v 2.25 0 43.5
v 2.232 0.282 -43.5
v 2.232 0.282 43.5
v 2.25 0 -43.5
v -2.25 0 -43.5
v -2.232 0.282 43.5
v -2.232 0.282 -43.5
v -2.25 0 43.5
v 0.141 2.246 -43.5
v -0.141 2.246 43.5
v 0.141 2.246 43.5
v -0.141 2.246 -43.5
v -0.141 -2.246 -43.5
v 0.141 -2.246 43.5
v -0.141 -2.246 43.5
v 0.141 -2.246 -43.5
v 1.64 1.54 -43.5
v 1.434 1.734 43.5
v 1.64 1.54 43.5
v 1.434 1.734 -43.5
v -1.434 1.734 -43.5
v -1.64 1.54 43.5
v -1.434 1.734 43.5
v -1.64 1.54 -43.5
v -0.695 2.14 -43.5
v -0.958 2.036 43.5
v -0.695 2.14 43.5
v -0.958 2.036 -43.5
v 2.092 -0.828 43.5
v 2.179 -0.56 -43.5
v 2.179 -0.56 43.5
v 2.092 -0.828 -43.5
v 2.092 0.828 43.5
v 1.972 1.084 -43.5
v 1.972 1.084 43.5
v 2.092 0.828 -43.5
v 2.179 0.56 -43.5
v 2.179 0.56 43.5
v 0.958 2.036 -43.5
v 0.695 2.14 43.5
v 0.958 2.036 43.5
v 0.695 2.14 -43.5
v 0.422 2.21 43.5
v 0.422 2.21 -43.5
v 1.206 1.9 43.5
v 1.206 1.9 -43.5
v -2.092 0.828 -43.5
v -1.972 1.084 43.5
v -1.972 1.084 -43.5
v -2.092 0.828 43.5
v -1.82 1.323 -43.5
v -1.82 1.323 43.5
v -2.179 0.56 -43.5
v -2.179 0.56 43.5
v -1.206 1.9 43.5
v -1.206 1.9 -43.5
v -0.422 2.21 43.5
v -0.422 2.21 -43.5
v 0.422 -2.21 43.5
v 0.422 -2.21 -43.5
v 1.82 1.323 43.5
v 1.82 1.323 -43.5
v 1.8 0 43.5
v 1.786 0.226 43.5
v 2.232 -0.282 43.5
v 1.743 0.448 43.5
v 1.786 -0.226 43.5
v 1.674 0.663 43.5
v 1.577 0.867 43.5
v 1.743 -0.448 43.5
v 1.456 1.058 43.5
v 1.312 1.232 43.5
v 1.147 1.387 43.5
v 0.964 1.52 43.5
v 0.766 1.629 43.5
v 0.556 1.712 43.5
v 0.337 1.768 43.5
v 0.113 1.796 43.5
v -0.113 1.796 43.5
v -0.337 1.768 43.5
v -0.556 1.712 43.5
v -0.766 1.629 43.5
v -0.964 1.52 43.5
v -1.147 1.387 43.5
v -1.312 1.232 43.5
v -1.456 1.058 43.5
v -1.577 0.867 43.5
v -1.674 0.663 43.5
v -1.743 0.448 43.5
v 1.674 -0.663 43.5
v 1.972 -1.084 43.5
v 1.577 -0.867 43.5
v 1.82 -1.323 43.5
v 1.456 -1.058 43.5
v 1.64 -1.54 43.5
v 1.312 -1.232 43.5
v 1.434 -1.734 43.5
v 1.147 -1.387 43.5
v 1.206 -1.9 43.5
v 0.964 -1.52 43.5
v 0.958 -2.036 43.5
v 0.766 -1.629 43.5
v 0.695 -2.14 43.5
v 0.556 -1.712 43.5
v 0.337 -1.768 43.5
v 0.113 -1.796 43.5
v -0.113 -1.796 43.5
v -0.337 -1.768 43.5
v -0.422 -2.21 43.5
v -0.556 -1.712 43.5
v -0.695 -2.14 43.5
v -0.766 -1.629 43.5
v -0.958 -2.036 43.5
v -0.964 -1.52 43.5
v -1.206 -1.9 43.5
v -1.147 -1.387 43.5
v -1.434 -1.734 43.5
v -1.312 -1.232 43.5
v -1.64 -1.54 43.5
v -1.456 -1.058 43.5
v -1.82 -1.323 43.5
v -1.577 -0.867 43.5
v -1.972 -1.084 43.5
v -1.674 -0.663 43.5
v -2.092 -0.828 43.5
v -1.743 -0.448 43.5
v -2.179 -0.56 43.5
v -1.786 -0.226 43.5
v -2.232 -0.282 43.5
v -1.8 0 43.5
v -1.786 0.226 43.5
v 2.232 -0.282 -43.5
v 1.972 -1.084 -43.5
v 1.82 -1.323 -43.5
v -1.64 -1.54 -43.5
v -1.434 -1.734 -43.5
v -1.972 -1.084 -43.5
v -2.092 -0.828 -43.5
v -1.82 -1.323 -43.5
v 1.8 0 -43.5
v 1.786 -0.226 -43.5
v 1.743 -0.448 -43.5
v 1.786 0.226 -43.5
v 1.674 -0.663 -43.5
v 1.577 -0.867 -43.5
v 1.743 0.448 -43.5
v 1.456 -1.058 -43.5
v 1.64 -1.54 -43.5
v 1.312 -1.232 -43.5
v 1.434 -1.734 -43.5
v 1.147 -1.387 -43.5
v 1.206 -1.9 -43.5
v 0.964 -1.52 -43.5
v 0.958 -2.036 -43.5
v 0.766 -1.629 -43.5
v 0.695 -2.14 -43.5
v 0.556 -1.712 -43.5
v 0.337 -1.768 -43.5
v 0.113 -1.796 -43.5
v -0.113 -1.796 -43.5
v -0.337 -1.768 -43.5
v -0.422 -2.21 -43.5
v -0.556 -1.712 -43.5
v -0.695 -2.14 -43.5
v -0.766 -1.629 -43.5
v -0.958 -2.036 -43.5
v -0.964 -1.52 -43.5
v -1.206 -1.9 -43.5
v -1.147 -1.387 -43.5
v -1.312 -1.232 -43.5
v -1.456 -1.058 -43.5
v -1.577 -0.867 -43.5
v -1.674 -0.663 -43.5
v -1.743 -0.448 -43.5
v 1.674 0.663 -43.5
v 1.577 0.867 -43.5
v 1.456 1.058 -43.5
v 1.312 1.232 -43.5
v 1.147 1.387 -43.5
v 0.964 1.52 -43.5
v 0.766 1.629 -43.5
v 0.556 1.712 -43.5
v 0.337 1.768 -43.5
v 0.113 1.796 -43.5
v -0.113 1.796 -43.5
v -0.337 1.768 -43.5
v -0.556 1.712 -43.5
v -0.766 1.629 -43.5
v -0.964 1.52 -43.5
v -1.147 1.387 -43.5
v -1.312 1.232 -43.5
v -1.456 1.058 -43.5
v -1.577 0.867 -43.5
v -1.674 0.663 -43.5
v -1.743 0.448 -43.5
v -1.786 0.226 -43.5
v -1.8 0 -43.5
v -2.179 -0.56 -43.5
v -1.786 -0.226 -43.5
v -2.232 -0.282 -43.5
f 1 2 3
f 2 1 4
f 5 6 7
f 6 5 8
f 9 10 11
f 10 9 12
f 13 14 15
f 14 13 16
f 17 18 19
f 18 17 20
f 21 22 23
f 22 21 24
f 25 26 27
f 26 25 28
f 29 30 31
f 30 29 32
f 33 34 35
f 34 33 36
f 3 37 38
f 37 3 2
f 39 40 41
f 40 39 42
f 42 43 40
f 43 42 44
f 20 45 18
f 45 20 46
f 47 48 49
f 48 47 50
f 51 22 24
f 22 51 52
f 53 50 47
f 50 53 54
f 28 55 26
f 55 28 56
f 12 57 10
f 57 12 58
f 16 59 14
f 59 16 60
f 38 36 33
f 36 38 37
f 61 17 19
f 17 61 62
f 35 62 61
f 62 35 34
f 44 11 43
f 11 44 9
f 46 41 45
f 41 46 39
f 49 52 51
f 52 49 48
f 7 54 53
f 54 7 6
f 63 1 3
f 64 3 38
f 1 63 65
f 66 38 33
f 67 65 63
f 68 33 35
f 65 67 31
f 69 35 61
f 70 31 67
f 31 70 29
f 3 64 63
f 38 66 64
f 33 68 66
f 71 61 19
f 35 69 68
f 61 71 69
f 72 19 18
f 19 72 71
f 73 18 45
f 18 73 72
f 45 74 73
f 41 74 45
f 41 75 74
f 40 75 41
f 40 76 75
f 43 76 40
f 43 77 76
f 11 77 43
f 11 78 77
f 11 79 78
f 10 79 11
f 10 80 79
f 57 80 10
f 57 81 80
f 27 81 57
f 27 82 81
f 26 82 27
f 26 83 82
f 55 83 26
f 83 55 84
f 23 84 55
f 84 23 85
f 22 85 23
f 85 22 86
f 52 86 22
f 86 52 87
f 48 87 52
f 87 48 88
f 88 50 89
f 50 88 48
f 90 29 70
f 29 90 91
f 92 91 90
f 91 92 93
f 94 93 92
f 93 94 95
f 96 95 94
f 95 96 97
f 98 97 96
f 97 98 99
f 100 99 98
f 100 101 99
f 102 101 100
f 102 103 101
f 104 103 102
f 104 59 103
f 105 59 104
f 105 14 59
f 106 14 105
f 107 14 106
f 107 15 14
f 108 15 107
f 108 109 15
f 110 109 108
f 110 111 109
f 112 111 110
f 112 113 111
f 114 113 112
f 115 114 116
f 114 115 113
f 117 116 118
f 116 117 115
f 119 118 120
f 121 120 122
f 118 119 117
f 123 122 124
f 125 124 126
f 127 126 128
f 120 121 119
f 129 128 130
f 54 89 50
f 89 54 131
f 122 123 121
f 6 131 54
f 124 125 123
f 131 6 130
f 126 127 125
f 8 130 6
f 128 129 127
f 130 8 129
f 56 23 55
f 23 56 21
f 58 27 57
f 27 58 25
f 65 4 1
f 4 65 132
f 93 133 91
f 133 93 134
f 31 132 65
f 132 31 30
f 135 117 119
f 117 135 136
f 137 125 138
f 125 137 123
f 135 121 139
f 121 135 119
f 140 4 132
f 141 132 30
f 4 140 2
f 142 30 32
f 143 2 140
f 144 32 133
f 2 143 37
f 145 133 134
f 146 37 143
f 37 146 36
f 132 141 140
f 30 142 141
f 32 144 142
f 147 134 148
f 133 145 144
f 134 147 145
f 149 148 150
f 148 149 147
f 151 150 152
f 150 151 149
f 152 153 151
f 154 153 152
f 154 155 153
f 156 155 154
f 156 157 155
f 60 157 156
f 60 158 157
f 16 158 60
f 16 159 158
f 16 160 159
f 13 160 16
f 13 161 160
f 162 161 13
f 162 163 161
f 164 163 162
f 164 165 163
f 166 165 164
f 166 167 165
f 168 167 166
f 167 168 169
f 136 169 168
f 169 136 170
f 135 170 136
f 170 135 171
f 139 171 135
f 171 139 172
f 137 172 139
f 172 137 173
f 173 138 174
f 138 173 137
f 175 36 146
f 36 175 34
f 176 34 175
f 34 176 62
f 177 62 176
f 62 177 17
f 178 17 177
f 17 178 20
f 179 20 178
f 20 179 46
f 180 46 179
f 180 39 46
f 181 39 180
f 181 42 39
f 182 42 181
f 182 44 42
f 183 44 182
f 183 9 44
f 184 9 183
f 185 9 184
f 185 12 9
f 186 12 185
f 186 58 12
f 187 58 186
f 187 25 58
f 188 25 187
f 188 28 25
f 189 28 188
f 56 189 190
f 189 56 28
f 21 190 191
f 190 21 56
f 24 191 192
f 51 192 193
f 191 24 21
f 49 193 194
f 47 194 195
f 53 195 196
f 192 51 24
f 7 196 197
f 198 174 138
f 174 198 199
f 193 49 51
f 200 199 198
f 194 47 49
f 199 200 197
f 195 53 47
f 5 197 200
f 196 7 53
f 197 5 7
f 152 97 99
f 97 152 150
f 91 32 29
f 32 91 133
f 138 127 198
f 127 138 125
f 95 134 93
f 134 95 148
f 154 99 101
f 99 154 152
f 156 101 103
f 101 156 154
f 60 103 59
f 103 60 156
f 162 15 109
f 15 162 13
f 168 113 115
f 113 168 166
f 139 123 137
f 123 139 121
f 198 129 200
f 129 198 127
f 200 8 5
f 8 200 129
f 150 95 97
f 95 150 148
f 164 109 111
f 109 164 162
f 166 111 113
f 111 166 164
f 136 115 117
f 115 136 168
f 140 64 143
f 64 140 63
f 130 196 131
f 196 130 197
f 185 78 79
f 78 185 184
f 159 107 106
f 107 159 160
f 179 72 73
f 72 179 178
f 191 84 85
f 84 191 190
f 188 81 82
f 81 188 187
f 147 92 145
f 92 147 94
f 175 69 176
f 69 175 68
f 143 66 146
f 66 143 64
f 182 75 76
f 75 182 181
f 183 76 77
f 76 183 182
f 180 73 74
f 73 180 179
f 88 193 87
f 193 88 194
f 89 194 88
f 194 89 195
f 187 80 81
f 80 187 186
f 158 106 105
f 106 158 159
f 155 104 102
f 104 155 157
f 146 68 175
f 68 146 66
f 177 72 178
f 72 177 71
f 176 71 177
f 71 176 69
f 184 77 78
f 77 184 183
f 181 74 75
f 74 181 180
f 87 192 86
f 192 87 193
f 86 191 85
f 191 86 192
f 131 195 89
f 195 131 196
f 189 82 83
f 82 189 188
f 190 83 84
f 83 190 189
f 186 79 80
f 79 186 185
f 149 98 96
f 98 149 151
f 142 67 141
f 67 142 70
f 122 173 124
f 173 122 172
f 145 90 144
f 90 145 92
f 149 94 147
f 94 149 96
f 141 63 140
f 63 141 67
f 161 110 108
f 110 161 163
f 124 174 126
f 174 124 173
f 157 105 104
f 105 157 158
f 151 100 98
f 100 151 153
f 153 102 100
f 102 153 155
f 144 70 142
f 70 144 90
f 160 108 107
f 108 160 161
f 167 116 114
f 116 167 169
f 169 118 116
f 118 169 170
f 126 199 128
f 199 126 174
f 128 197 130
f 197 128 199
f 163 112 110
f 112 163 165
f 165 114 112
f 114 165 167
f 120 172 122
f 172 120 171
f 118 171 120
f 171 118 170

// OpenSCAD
$fn = 50;


difference() {
	union() {
		translate(v = [0, 0, -43.5000000000]) {
			cylinder(h = 87, r = 2.2500000000);
		}
	}
	union() {
		translate(v = [0, 0, -100.0000000000]) {
			cylinder(h = 200, r = 1.8000000000);
		}
	}
}
